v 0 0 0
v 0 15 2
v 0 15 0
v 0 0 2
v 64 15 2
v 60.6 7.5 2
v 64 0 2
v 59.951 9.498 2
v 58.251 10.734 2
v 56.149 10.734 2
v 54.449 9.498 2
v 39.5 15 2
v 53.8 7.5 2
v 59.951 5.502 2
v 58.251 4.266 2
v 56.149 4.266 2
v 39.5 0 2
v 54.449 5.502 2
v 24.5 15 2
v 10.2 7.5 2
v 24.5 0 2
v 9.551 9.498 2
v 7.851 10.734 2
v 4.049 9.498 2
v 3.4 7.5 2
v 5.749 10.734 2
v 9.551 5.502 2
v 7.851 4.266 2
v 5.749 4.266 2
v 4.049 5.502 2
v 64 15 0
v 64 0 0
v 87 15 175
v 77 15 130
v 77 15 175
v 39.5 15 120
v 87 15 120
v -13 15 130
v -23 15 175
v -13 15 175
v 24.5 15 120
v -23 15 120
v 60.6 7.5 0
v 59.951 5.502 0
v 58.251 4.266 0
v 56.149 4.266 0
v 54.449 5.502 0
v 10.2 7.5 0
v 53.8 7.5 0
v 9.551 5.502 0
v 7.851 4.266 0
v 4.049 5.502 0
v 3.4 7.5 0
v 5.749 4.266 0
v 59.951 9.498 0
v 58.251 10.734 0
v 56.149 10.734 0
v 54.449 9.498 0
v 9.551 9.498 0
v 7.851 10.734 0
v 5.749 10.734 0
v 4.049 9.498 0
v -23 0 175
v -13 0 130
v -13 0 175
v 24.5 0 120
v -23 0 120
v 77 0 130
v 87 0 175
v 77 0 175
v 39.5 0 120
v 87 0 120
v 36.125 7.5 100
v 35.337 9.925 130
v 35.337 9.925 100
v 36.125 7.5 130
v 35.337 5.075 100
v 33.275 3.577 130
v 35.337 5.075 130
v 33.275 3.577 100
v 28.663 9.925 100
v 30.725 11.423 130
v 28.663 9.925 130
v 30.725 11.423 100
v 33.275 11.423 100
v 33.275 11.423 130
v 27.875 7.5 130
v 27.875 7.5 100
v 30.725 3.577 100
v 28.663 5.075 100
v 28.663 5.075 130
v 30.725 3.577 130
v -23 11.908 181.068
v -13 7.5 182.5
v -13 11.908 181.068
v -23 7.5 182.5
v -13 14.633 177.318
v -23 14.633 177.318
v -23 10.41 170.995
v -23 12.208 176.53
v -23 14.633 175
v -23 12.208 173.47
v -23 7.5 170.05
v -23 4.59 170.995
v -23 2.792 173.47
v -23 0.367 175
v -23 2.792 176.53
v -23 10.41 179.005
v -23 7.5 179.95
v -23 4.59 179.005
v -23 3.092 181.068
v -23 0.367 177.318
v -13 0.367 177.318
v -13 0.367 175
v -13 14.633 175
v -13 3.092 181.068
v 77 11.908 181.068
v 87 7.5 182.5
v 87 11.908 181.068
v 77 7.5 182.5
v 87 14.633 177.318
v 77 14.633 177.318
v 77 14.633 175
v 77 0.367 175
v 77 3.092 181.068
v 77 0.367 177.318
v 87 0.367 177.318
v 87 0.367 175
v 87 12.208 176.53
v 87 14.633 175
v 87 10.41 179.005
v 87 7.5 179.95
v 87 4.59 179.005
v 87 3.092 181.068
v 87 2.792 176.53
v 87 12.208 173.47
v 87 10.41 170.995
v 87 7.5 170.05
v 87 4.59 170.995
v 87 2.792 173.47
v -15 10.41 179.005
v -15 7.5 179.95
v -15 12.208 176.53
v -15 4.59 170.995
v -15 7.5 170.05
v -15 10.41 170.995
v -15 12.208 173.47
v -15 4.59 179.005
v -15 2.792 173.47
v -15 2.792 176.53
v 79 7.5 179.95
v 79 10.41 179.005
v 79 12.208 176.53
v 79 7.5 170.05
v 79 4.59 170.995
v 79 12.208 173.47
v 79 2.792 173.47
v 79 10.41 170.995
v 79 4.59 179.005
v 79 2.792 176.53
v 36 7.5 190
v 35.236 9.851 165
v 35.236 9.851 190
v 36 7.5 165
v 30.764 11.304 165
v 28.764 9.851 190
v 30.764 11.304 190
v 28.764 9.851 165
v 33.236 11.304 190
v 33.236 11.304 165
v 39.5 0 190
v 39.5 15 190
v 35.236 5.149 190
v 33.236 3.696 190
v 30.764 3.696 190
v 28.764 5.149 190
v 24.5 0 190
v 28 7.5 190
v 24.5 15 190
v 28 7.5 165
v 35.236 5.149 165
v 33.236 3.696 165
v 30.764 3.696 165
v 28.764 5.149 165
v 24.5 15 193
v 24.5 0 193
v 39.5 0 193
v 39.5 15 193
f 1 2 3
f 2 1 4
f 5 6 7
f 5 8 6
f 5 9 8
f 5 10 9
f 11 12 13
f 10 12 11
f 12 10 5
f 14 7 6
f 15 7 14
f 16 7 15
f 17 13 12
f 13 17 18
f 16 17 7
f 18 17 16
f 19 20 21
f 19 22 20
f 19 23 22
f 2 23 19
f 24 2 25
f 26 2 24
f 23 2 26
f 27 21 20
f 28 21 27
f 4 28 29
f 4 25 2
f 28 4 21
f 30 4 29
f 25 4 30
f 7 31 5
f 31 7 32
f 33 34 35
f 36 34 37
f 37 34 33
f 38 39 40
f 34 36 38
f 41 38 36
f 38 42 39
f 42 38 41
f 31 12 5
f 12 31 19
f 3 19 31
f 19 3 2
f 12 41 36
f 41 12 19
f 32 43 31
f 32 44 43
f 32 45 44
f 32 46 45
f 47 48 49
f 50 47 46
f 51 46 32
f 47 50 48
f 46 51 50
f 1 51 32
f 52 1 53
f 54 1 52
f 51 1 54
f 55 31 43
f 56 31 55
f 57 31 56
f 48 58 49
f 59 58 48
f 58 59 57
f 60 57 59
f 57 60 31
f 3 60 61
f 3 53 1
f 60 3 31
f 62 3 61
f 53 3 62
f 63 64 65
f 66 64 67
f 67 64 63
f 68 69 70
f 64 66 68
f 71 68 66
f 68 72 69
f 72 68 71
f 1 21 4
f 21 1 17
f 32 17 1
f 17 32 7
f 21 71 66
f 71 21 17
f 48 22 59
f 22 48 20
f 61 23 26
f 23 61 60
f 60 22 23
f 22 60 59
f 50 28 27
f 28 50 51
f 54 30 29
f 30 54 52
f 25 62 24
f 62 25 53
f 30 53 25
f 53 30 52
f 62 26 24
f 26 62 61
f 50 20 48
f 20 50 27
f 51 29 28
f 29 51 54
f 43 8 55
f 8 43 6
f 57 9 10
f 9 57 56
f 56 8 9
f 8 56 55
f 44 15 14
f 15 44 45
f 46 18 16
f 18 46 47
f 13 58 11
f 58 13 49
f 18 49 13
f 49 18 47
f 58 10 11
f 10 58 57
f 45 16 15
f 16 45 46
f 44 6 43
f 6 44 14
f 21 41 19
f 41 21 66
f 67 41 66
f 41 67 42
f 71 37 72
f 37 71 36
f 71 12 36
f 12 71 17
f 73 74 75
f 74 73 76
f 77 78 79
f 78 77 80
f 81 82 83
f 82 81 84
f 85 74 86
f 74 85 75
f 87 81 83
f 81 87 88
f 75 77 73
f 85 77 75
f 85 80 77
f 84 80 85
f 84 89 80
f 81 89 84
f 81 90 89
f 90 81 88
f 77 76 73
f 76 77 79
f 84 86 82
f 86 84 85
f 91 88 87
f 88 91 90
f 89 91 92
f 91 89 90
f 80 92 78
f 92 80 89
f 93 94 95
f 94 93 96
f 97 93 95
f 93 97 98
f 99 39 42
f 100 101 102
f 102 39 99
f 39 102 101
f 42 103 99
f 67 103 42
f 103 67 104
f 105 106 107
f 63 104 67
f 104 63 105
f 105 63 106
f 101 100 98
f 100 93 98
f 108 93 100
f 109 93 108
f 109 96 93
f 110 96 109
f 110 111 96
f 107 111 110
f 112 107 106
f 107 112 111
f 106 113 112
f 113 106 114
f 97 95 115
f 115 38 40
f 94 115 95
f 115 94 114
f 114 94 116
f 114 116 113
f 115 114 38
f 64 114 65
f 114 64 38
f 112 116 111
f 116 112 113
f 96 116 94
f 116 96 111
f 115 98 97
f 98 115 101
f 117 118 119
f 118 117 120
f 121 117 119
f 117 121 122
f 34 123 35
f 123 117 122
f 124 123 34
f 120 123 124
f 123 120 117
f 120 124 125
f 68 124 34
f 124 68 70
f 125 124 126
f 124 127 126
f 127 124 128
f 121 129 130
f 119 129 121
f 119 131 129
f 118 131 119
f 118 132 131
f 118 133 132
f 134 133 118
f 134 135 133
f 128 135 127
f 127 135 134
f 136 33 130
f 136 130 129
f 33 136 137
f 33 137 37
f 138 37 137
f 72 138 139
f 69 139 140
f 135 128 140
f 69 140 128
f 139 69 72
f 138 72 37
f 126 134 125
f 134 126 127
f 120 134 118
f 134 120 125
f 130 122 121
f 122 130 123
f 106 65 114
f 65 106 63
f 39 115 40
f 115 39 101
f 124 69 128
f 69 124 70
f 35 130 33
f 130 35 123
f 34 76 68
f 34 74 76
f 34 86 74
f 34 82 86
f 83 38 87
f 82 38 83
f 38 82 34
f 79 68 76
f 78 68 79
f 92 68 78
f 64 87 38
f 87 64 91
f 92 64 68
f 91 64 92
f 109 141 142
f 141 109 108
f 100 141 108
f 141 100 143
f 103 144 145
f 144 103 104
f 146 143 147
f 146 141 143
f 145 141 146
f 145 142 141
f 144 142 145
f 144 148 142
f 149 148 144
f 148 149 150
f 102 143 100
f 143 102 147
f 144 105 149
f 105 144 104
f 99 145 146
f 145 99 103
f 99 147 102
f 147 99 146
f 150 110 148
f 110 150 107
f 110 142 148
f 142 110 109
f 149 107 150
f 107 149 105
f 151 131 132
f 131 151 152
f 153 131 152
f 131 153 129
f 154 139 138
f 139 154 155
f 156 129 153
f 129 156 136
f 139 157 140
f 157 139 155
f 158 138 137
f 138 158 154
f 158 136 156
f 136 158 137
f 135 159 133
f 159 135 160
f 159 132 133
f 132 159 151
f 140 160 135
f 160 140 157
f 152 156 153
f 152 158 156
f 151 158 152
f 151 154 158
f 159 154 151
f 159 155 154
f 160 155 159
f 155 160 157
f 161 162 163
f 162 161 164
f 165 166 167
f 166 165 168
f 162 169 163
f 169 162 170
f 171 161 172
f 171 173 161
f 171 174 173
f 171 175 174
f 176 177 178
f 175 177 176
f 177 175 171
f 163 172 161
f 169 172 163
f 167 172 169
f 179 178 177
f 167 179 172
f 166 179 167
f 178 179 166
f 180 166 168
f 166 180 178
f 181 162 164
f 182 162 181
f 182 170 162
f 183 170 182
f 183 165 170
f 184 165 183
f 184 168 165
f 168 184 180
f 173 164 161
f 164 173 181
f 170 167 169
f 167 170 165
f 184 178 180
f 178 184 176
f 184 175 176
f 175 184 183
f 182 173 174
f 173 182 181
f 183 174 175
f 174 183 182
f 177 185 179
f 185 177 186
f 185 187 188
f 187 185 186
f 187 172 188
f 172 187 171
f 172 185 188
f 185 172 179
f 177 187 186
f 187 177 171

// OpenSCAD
res=10;

d=9.5;
base_x=1;
base_y=1;
pilar_x=15;
pilar_y=15;
pilar_z=160;
base_fixa_x=2*6.8+2*25.2;
base_fixa_y=15;
base_fixa_z=2;

entre_imas=90;
enc_cil_ima=9.9/2;
fixa_ima=1;
fixa_ima_z=1;

difference(){
    cube([base_fixa_x,base_fixa_y,base_fixa_z]);
    #translate([6.8,base_fixa_y/2,0])cylinder(2,6.8/2,6.8/2,$fn=res);
    #translate([6.8+2*25.2,base_fixa_y/2,0])cylinder(2,6.8/2,6.8/2,$fn=res);
}
difference(){
    translate([(base_fixa_x-pilar_x)/2,(base_fixa_y-pilar_y)/2,0])cube([pilar_x,pilar_x,pilar_z-40]);
    #translate([(base_fixa_x-pilar_x)/2-(entre_imas-pilar_x)/2,0,pilar_z])
    #translate([entre_imas/2,15/2,-20-40])
    #cylinder(20,4+0.125,4+0.125,$fn=res);
}
translate([(base_fixa_x-pilar_x)/2-(entre_imas-pilar_x)/2,0,pilar_z]){
    difference(){
        translate([0,0,0]){
            translate([0,15/2,15])rotate([0,-90,0])cylinder(10,15/2,15/2,$fn=res);
            translate([entre_imas+10,15/2,15])rotate([0,-90,0])cylinder(10,15/2,15/2,$fn=res);
            translate([-10,0,-40])cube([10,15,15+40]);
            translate([entre_imas,0,-40])cube([10,15,15+40]);
            translate([-10,0,-40])cube([20+entre_imas,15,10]);
        }
        #translate([-2,15/2,15])rotate([0,-90,0])cylinder(10,9.9/2,9.9/2,$fn=res);
        #translate([entre_imas+10+2,15/2,15])rotate([0,-90,0])cylinder(10,9.9/2,9.9/2,$fn=res);
        #translate([entre_imas/2,15/2,-40])cylinder(10,4+0.125,4+0.125,$fn=res);
    }
}

translate([(base_fixa_x-pilar_x)/2-(entre_imas-pilar_x)/2,0,pilar_z])
translate([entre_imas/2,15/2,20-10-5])
cylinder(25,4,4,$fn=res);
translate([(base_fixa_x-pilar_x)/2-(entre_imas-pilar_x)/2,0,pilar_z])
translate([entre_imas/2,15/2,20+10])
translate([-15/2,-15/2,0])
cube([15,15,3]);
